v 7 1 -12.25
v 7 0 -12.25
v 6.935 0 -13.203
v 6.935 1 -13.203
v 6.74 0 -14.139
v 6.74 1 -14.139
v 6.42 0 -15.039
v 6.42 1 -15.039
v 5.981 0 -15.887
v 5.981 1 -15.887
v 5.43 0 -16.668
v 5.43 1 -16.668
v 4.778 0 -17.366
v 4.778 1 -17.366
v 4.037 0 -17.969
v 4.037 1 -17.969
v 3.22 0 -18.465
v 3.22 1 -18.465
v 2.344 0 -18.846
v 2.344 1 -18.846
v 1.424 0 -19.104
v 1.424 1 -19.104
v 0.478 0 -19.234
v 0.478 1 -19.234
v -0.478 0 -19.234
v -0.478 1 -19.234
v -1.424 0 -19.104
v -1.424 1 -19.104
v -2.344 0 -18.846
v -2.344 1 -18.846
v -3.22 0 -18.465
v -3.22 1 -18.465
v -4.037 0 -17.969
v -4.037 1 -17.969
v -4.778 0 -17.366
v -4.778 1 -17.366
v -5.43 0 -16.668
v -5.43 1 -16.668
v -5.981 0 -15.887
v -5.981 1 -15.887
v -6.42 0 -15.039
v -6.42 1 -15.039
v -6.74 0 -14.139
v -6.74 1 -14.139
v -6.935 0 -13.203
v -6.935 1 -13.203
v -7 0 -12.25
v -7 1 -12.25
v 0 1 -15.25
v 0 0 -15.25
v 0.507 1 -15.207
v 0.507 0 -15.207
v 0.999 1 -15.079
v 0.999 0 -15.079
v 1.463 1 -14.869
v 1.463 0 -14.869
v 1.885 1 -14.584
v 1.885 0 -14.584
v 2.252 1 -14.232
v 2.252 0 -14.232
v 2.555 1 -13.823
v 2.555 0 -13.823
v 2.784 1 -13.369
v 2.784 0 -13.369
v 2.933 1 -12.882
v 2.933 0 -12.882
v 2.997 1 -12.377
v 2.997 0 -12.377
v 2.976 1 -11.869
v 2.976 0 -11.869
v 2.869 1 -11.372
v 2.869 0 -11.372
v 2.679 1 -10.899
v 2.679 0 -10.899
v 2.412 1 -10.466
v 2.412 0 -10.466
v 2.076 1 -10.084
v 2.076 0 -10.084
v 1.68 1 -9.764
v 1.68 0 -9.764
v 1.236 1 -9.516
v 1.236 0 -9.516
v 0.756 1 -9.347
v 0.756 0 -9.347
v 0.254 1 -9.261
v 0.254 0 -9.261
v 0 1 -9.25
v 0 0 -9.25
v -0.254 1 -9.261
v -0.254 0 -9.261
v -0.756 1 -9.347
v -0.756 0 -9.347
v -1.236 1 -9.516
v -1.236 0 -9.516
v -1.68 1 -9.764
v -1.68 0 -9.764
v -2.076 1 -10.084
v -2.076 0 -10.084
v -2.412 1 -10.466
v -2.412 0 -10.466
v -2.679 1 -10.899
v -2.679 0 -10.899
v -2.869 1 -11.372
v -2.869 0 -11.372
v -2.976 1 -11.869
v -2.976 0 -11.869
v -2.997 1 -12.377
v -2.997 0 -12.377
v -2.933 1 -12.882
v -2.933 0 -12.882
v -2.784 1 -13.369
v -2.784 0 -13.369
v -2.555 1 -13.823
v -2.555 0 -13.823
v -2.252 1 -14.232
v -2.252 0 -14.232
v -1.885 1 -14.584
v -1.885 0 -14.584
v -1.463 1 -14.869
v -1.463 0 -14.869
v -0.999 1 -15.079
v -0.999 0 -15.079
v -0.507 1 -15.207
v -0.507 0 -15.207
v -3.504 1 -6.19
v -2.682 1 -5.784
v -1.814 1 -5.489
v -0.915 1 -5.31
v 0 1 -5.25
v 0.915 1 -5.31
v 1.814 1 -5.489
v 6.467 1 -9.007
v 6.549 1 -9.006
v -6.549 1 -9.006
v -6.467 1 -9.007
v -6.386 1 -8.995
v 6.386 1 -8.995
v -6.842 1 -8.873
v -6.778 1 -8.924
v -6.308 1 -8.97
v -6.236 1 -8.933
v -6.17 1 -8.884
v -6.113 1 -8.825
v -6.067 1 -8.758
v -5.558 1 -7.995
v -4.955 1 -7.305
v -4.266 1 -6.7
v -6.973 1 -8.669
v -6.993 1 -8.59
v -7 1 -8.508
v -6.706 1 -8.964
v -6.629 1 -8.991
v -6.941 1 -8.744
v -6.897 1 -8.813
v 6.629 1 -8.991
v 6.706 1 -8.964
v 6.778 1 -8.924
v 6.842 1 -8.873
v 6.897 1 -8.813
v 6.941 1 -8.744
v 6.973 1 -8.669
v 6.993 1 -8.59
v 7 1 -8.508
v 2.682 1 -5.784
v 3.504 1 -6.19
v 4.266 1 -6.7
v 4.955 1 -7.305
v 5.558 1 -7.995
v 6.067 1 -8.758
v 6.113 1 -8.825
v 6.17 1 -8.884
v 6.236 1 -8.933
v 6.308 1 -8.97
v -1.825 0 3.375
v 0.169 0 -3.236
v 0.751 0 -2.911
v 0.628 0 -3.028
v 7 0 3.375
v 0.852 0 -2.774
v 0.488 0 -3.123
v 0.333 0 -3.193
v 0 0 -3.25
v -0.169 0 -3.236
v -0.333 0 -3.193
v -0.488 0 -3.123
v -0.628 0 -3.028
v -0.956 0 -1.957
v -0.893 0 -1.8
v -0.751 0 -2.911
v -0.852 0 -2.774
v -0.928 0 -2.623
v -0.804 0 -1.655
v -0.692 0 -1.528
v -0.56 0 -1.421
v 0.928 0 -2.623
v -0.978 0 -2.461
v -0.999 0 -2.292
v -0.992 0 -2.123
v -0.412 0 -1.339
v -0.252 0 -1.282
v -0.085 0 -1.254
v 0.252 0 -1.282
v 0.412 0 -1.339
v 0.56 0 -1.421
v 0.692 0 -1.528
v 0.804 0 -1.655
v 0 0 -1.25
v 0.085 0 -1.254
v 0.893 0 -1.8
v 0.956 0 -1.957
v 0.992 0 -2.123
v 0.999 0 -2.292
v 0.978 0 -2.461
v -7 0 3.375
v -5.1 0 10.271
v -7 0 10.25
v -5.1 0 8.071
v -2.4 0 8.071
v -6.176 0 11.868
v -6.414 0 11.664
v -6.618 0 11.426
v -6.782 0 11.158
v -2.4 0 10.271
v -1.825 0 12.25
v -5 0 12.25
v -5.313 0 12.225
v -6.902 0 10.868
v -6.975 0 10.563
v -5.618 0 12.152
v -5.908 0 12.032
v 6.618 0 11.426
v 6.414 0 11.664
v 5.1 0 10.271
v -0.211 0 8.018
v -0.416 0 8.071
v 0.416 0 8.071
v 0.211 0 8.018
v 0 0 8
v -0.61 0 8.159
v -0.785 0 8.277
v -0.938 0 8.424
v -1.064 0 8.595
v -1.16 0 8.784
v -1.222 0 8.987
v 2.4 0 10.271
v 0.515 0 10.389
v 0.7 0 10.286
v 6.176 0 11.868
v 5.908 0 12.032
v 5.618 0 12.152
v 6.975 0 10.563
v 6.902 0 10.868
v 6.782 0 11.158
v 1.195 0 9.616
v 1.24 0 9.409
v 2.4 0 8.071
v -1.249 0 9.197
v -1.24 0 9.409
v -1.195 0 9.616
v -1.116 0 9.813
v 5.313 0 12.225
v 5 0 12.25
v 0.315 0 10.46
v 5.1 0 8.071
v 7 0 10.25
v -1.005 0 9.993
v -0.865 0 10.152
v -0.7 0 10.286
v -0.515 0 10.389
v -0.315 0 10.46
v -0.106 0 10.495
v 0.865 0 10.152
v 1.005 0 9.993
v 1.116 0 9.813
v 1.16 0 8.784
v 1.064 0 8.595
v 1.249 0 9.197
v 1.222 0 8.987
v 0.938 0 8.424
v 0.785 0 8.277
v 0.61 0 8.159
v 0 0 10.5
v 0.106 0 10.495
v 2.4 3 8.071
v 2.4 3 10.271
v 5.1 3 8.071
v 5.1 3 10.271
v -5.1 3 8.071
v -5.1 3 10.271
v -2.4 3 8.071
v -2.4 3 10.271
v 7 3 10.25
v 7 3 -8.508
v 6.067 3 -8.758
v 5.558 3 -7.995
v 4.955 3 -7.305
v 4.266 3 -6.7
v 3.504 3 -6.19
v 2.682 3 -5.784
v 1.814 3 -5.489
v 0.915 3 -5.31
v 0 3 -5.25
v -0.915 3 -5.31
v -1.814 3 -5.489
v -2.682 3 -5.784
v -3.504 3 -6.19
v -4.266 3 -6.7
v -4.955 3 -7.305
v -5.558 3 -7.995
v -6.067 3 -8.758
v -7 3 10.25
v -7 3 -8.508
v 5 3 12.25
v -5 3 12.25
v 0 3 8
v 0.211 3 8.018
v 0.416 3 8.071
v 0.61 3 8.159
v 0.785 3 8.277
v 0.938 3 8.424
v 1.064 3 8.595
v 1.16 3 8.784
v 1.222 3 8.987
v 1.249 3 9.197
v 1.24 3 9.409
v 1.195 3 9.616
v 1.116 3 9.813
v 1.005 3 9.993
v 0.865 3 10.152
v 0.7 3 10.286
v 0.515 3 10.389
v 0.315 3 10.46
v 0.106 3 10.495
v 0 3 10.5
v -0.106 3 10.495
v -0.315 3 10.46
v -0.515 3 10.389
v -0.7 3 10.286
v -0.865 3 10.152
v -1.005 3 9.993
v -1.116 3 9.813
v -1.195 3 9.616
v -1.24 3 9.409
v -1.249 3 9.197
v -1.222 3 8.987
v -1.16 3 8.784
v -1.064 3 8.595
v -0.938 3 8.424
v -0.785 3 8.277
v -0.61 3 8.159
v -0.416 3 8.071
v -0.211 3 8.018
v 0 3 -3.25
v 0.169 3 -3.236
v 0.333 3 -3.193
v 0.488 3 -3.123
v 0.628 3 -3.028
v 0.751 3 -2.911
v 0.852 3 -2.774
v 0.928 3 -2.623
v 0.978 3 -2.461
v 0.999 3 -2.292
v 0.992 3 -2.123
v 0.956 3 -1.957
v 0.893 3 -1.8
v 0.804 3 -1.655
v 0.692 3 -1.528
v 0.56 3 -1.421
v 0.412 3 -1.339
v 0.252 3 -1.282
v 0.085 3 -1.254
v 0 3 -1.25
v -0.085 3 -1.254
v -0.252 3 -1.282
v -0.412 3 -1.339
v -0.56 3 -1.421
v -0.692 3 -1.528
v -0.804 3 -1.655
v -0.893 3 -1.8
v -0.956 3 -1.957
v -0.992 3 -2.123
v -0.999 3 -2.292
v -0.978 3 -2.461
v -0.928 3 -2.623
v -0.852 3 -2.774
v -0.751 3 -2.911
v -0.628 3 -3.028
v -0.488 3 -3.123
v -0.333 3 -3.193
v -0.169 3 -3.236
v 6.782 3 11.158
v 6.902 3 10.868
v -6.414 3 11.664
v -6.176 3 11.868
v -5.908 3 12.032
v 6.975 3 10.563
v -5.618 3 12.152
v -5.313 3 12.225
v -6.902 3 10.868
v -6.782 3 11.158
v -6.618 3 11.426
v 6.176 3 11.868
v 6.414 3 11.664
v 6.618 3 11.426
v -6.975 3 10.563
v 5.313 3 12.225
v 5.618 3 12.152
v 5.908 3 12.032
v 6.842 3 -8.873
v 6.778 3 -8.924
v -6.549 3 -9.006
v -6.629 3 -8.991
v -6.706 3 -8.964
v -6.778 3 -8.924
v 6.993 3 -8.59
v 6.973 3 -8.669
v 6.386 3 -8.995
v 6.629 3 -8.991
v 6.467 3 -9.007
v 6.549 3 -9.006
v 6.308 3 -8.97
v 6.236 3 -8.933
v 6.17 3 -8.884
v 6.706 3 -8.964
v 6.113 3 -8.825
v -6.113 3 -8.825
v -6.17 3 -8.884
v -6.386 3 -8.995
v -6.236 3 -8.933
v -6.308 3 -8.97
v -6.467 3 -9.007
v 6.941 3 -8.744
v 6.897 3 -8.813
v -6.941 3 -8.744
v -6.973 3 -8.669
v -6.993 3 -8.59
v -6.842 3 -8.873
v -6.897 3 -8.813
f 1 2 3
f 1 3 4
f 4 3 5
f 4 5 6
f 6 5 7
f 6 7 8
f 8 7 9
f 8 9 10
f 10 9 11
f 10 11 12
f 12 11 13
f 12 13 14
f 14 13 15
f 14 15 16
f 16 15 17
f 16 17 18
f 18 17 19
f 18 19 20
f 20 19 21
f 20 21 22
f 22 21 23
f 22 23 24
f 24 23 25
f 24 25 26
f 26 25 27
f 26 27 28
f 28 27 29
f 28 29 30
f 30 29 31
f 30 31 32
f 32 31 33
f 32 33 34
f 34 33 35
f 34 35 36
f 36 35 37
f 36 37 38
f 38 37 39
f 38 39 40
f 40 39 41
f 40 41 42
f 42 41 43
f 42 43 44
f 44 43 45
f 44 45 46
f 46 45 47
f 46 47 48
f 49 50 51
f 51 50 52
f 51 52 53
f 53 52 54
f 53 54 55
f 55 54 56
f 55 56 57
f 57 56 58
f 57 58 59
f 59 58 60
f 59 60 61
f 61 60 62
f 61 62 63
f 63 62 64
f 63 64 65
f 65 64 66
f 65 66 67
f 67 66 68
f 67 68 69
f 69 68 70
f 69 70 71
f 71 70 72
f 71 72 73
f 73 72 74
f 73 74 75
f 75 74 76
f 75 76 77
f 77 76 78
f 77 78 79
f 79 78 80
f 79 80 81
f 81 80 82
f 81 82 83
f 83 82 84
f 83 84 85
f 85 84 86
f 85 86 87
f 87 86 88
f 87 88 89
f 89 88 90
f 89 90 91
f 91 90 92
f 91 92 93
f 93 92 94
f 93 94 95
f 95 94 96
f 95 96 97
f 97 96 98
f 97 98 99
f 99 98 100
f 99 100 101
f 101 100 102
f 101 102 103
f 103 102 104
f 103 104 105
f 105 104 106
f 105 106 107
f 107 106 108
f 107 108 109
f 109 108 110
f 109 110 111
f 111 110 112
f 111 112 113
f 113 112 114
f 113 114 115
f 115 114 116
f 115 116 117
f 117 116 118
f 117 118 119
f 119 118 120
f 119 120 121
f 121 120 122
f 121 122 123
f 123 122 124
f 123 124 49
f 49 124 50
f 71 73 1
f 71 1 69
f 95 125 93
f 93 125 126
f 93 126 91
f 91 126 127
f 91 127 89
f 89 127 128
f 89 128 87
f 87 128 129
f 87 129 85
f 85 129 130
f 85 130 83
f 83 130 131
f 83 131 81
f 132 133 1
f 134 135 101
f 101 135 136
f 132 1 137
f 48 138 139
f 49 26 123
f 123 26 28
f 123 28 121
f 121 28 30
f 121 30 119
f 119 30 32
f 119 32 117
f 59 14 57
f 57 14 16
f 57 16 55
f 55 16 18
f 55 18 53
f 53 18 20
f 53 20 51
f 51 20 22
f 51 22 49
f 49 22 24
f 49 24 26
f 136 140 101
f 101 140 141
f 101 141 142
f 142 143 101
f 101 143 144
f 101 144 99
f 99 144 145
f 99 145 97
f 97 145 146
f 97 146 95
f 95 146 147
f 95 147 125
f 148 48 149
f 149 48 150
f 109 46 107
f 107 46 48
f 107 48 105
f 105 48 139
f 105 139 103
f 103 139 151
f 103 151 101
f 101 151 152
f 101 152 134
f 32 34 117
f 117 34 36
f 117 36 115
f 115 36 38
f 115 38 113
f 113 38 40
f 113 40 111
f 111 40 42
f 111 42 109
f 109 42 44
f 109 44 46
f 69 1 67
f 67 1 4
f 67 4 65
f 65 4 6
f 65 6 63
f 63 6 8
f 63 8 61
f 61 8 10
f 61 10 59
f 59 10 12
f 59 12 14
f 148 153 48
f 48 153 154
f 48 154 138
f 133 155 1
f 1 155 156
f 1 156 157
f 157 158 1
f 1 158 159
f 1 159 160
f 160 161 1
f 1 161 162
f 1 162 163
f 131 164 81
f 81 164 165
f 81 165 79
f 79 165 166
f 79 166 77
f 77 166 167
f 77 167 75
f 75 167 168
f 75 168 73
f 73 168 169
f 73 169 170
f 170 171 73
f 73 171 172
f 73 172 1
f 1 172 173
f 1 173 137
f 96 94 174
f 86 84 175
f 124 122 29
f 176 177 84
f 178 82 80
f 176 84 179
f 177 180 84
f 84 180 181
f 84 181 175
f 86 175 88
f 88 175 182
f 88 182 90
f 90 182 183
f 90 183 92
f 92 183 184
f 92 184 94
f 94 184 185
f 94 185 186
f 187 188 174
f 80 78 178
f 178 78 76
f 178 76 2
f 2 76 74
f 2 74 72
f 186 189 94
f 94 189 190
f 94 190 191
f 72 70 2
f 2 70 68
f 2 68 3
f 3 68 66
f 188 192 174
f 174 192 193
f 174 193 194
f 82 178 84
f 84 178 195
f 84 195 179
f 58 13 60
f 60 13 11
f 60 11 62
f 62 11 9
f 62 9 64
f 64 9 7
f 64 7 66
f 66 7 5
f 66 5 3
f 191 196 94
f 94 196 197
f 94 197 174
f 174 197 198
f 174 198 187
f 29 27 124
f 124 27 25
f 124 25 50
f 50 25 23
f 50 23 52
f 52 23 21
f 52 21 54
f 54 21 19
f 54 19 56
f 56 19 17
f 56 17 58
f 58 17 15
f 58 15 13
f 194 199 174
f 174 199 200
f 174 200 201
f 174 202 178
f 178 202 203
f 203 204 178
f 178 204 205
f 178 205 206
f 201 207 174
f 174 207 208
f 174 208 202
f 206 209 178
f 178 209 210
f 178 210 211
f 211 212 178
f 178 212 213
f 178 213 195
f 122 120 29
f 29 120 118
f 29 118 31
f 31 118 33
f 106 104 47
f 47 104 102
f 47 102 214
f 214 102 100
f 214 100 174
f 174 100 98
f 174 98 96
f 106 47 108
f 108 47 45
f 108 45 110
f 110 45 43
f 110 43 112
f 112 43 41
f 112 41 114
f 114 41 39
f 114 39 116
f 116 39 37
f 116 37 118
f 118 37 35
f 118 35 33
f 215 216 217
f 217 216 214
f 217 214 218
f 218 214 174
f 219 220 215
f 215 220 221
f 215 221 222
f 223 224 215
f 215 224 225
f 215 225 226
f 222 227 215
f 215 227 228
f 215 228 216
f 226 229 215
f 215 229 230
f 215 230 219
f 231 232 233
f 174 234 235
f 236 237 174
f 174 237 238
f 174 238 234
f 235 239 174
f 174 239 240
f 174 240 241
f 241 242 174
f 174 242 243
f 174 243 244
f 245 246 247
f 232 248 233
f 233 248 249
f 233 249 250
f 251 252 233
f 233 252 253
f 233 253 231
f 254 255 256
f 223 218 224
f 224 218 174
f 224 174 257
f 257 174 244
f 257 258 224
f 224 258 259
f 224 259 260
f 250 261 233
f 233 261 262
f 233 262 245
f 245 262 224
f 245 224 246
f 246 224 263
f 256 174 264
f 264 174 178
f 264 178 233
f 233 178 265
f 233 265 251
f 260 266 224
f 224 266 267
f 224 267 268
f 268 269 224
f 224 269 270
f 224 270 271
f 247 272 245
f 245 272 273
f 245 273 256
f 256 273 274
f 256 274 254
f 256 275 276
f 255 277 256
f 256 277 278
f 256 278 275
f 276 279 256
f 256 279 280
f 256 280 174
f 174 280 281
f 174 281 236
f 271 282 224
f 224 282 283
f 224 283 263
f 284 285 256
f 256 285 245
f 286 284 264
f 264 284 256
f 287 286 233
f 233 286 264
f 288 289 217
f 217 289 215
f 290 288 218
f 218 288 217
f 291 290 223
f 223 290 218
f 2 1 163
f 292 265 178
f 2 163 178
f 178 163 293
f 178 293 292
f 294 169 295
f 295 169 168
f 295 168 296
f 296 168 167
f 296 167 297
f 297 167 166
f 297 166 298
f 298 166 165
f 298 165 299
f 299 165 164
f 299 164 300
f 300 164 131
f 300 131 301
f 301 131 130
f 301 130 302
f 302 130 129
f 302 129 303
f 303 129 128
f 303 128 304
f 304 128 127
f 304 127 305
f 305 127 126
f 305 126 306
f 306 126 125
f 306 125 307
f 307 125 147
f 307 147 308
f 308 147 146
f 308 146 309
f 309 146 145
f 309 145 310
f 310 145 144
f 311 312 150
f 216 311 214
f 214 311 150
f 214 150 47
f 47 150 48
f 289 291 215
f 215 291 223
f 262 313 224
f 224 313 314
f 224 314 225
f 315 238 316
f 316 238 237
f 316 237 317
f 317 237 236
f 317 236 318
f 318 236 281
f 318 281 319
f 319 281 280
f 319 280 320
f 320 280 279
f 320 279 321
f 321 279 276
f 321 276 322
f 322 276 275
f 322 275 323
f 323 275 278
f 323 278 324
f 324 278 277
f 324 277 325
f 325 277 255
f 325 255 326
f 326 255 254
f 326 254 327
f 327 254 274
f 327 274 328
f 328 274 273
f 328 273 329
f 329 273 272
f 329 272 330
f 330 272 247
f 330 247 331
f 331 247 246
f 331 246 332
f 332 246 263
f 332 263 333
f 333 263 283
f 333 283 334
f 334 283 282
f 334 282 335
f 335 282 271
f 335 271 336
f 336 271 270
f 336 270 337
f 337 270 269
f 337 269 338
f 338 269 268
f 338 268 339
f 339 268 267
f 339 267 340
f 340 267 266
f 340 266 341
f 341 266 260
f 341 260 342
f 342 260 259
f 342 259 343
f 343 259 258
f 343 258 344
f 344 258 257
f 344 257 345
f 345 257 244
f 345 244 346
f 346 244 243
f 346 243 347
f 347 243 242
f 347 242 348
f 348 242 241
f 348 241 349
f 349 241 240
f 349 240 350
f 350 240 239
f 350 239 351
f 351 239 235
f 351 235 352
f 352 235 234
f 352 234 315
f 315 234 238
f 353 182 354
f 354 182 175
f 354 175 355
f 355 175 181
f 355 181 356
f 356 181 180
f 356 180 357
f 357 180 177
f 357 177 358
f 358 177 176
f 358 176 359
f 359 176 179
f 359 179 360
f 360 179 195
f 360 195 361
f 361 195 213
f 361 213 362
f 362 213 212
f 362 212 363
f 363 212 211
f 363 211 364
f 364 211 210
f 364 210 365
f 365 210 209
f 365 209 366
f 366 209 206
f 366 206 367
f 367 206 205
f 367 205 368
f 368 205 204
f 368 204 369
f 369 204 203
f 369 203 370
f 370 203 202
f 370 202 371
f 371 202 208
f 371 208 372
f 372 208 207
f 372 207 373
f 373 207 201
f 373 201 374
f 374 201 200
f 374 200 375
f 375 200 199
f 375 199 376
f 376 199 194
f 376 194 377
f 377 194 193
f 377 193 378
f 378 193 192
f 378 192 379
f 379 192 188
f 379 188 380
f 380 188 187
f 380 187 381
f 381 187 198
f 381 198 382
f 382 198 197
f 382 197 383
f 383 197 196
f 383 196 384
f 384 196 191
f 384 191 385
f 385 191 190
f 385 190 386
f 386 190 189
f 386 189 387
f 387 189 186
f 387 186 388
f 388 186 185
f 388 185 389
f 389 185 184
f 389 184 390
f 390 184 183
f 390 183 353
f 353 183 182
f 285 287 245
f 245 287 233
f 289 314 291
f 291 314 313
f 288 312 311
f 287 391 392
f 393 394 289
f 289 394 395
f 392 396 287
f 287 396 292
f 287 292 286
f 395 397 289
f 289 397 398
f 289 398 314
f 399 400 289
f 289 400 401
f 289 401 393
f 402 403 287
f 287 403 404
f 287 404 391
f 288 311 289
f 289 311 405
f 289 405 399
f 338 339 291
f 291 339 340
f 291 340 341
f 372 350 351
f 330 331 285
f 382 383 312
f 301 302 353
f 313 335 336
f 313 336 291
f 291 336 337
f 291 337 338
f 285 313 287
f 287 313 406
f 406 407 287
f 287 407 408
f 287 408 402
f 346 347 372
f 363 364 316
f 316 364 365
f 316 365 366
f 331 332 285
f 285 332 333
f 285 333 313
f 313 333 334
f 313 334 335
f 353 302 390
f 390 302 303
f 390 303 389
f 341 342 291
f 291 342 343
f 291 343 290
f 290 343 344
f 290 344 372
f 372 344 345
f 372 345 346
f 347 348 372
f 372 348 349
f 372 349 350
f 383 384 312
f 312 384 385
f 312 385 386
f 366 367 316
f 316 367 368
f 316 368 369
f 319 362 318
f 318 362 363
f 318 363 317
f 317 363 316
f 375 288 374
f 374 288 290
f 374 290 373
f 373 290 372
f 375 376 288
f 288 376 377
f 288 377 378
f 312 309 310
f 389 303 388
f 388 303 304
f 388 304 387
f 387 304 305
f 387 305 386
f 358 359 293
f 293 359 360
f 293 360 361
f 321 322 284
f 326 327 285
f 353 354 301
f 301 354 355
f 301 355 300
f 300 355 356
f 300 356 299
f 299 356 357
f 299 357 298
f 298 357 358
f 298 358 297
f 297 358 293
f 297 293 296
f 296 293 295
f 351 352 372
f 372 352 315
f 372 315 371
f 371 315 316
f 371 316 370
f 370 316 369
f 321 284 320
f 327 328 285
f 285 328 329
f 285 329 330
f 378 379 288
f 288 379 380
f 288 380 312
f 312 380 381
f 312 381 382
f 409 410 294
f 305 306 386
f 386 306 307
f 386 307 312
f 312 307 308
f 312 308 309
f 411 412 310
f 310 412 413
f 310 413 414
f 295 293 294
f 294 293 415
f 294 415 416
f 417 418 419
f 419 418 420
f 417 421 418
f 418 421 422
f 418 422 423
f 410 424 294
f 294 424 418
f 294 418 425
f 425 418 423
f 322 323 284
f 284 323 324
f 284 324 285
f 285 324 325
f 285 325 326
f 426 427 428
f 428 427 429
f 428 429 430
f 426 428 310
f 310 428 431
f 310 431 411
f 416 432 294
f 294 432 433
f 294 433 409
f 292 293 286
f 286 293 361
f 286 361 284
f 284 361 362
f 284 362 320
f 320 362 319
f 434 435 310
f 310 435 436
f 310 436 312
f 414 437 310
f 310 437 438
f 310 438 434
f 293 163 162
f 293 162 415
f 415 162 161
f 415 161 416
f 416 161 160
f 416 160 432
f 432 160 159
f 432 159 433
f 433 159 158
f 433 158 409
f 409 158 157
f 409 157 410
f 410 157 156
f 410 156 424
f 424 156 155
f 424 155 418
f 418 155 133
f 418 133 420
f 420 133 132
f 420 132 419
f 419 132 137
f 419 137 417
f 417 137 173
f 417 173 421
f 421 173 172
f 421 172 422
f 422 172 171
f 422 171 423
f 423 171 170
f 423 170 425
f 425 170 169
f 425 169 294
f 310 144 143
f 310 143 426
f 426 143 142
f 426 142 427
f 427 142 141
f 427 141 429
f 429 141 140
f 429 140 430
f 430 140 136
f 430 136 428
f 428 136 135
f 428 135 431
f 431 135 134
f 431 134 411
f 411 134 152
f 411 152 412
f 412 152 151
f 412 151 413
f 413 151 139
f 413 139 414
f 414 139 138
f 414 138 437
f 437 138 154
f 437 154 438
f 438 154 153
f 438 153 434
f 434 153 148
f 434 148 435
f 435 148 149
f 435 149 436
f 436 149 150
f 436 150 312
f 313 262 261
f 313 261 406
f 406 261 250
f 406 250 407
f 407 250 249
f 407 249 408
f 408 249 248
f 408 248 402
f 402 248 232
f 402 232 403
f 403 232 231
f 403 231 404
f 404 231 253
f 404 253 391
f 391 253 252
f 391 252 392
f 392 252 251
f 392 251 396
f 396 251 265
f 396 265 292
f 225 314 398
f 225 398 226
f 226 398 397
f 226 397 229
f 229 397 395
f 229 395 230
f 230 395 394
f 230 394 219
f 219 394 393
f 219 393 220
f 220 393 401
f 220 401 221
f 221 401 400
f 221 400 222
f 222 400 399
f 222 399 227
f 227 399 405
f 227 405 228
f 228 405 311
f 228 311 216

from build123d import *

# Parameters (mm, degrees)
EXTRUDE_2_DEPTH = 1
SKETCH_1_4_W    = 2.7
SKETCH_1_4_H    = 2.2
SKETCH_1_4_R    = 1.25
EXTRUDE_3_DEPTH = 3
FILLET_1_R      = 0.5
FILLET_2_R      = 2


with BuildPart() as part:
    # 草图1 → 凸台-拉伸2 (new body)
    with BuildSketch(Plane(origin=(0, 0, 0), x_dir=(1, 0, 0), z_dir=(0, 1, 0))):
        with BuildLine():
            ThreePointArc((-3, 12.25), (0, 15.25), (3, 12.25))
            Line((3, 12.25), (7, 12.25))
            ThreePointArc((7, 12.25), (0, 19.25), (-7, 12.25))
            Line((-7, 12.25), (-3, 12.25))
        make_face()
        with BuildLine():
            ThreePointArc((3, 12.25), (2.121320344, 10.128679656), (0, 9.25))
            Line((0, 9.25), (0, 5.25))
            ThreePointArc((0, 5.25), (4.949747468, 7.300252532), (7, 12.25))
            Line((7, 12.25), (3, 12.25))
        make_face()
        with BuildLine():
            Line((0, 5.25), (0, 9.25))
            ThreePointArc((0, 9.25), (-2.121320344, 10.128679656), (-3, 12.25))
            Line((-3, 12.25), (-7, 12.25))
            ThreePointArc((-7, 12.25), (-4.949747468, 7.300252532), (0, 5.25))
        make_face()
    extrude(amount=EXTRUDE_2_DEPTH)

    # 草图1<4> → 凸台-拉伸3 (add)
    with BuildSketch(Plane(origin=(0, 0, 0), x_dir=(1, 0, 0), z_dir=(0, 1, 0))):
        with BuildLine():
            ThreePointArc((7, 12.25), (4.949747468, 7.300252532), (0, 5.25))
            ThreePointArc((0, 5.25), (-4.949747468, 7.300252532), (-7, 12.25))
            Line((-7, 12.25), (-7, -12.25))
            Line((-7, -12.25), (7, -12.25))
            Line((7, -12.25), (7, 12.25))
        make_face()
        with Locations((-3.75, -9.170716156)):
            Rectangle(SKETCH_1_4_W, SKETCH_1_4_H, mode=Mode.SUBTRACT)
        with Locations((0, -9.25)):
            Circle(SKETCH_1_4_R, mode=Mode.SUBTRACT)
        with Locations((3.75, -9.170716156)):
            Rectangle(SKETCH_1_4_W, SKETCH_1_4_H, mode=Mode.SUBTRACT)
        with BuildLine():
            ThreePointArc((1, 2.25), (-0.707106781, 1.542893219), (0, 3.25))
            ThreePointArc((0, 3.25), (0.707106781, 2.957106781), (1, 2.25))
        make_face(mode=Mode.SUBTRACT)
    extrude(amount=EXTRUDE_3_DEPTH)

    # 圆角1
    fillet_1_edges = [part.edges().sort_by_distance(p)[0] for p in [
        (7, 2, -12.25),
        (-7, 2, -12.25),
    ]]
    fillet(fillet_1_edges, radius=FILLET_1_R)

    # 圆角2
    fillet_2_edges = [part.edges().sort_by_distance(p)[0] for p in [
        (7, 1.5, 12.25),
        (-7, 1.5, 12.25),
    ]]
    fillet(fillet_2_edges, radius=FILLET_2_R)


solid = part.part
